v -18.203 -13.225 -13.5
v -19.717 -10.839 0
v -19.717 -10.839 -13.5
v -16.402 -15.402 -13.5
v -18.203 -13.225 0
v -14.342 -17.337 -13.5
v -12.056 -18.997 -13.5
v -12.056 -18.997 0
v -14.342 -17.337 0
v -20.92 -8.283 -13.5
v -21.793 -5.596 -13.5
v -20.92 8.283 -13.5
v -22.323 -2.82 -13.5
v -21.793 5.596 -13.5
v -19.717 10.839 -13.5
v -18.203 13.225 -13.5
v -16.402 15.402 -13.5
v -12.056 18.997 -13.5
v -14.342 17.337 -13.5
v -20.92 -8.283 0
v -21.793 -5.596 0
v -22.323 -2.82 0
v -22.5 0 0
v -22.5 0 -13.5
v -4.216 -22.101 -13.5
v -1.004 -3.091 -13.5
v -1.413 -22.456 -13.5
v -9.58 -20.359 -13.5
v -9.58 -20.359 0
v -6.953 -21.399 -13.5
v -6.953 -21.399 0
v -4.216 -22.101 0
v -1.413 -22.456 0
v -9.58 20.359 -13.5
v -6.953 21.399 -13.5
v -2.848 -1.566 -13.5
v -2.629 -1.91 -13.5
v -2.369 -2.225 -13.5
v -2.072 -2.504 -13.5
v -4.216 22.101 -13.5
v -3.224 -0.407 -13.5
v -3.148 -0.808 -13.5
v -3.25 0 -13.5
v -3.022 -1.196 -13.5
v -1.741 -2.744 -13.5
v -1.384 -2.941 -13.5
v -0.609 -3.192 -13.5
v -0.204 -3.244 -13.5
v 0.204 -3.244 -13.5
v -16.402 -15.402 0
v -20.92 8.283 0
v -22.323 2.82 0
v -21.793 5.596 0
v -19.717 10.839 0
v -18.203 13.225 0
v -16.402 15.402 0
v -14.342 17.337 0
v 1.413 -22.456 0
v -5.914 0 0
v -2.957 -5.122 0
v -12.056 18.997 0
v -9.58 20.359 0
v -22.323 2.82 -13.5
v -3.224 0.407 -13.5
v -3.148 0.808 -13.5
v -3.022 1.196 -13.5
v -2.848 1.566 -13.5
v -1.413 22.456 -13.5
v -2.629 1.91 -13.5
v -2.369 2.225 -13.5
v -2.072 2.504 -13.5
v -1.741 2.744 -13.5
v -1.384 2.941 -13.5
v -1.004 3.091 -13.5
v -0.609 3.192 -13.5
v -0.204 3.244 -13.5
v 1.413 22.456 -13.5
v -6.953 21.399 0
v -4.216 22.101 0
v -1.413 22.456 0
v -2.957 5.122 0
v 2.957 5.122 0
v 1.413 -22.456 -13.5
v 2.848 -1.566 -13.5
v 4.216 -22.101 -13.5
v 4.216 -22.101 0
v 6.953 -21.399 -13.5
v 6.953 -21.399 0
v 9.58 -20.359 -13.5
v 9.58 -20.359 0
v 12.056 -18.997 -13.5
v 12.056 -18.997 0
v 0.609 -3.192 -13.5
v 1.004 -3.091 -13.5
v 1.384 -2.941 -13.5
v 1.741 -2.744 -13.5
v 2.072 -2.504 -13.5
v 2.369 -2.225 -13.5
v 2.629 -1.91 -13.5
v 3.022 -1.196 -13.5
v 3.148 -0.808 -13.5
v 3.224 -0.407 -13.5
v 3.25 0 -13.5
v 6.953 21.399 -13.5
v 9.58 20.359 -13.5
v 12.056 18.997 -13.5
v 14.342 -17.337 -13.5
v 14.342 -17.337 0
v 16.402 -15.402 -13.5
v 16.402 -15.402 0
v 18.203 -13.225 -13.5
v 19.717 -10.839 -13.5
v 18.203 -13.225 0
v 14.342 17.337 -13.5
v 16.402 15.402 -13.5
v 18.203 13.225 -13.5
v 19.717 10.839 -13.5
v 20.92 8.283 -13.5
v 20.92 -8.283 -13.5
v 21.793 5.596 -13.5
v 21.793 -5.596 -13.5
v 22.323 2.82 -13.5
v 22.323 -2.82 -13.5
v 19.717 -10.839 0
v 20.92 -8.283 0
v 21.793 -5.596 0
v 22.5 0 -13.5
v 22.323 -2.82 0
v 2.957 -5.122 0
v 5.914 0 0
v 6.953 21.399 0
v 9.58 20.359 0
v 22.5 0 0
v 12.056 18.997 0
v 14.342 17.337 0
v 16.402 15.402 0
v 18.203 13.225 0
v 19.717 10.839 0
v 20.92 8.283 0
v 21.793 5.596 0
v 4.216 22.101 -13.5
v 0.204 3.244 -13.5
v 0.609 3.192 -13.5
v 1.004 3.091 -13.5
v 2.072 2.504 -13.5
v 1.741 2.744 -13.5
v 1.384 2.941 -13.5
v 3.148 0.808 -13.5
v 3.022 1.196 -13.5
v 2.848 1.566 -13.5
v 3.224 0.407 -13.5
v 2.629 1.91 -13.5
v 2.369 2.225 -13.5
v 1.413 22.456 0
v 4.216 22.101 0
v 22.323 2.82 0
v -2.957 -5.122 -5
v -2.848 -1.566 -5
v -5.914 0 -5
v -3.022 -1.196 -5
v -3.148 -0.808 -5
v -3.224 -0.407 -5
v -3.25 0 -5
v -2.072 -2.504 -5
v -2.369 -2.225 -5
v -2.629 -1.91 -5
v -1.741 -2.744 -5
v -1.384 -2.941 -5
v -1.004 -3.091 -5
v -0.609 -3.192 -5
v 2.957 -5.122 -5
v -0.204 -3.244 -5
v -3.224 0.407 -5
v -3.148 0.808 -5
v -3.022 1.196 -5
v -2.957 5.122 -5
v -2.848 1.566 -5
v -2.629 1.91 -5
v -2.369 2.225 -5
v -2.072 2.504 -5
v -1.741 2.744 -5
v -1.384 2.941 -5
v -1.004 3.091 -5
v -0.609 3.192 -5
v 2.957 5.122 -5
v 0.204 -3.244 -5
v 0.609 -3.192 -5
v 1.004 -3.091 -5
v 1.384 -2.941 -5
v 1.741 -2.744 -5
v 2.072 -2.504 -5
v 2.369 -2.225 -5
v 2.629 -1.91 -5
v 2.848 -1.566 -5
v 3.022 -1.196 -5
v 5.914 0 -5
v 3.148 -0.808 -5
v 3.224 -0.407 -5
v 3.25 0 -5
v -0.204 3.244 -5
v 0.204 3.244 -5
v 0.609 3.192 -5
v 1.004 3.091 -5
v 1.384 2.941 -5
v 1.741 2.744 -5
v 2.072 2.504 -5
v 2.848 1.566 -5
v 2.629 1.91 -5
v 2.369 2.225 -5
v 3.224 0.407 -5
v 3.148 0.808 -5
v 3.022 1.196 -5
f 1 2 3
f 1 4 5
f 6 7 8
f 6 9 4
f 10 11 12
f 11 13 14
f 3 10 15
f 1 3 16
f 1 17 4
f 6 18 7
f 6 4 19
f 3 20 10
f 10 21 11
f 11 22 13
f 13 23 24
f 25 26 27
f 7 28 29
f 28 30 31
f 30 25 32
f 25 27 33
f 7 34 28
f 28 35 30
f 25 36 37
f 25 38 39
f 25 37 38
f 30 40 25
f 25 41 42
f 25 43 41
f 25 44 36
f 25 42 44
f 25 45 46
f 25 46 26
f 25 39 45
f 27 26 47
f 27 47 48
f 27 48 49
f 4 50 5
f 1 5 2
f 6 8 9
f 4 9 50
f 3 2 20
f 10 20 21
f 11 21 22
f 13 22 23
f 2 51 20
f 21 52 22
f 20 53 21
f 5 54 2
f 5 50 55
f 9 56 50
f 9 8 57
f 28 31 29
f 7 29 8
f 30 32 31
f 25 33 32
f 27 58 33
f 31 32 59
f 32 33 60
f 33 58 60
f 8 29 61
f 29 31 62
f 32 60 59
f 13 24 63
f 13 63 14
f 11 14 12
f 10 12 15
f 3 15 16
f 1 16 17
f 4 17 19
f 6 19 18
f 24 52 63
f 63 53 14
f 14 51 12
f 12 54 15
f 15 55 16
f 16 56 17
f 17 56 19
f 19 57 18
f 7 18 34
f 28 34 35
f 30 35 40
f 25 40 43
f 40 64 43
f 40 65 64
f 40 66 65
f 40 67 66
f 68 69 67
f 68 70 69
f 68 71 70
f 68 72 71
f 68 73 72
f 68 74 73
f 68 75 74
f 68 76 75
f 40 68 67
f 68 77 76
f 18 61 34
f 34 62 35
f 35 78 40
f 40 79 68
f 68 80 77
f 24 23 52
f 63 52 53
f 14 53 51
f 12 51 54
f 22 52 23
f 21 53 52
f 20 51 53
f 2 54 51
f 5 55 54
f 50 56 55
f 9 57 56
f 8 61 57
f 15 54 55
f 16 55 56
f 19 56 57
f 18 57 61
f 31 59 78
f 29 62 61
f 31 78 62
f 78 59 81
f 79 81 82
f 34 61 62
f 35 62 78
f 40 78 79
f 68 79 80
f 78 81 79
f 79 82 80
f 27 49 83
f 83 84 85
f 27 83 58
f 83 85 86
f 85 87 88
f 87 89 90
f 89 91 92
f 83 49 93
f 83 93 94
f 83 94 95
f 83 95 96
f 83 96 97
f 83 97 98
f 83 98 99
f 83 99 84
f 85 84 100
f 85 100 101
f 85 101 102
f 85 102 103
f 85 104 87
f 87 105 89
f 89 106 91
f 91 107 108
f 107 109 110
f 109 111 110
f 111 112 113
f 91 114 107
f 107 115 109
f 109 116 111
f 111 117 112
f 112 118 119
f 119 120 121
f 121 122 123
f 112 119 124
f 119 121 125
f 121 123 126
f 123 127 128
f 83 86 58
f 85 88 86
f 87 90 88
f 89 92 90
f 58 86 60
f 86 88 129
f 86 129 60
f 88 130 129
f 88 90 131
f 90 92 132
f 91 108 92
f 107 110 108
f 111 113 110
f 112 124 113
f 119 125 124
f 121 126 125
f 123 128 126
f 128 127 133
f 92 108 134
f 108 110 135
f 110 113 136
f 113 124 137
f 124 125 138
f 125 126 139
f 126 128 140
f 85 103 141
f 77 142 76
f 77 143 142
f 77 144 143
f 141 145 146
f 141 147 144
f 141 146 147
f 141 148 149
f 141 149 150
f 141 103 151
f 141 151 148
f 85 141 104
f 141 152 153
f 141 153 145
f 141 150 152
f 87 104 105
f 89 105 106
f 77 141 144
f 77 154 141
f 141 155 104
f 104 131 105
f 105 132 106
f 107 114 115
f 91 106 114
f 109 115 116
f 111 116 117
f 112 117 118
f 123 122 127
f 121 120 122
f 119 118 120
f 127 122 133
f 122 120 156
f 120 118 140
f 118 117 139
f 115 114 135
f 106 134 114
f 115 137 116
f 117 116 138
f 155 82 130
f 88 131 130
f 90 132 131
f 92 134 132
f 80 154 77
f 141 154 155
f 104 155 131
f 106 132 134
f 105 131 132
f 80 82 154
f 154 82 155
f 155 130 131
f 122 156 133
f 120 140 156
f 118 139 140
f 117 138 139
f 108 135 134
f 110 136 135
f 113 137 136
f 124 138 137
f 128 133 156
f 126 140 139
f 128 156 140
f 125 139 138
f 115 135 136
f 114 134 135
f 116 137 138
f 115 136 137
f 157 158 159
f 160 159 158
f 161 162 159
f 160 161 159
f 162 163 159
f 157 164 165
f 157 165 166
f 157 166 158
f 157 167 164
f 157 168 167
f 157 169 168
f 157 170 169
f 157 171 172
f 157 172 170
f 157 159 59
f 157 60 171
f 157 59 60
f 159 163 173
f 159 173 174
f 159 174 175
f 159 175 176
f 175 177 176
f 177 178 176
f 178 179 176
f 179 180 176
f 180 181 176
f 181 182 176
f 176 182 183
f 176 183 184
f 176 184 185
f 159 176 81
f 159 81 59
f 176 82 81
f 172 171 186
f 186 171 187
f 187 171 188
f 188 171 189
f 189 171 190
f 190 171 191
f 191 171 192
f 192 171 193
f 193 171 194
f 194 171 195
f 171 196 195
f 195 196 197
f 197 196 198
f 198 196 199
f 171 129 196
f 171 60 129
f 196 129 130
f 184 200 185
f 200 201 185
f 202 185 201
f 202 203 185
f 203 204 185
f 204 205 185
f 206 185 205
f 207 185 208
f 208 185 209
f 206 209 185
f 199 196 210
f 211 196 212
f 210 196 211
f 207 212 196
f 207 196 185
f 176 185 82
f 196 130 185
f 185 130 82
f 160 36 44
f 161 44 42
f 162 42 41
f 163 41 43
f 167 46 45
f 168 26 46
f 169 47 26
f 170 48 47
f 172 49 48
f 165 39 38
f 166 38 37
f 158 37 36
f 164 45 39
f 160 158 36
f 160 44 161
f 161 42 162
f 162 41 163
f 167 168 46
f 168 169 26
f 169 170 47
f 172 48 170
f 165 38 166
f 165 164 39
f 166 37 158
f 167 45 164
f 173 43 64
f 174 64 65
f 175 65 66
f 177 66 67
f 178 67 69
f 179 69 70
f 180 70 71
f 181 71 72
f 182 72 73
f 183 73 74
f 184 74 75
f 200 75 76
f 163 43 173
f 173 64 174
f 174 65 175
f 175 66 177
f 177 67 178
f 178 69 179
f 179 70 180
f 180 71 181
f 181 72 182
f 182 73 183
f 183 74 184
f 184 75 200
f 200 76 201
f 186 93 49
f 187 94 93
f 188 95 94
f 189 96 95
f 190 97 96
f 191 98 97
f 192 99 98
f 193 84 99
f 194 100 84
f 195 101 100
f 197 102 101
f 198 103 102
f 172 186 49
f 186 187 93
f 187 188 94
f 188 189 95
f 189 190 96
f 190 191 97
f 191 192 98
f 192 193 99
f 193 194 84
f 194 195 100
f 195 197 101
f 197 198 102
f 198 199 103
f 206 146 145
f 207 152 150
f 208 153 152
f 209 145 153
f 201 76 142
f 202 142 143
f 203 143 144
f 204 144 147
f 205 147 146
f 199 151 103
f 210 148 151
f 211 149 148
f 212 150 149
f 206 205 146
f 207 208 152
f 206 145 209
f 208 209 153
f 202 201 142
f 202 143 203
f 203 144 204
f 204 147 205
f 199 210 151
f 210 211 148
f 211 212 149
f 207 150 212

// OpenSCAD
$fn = 50;

difference() {
	union() {
		translate(v = [0, 0, -13.5]) {
			cylinder(h = 13.5, r = 22.5);
		}
	}
	union() {
		translate(v = [0, 0, 0]) {
			rotate(a = [0, 0, 0]) {
				difference() {
					union() {
						translate(v = [0, 0, -5]) {
							linear_extrude(height = 5) {
								polygon(points = [[5.914249999999999, 0.0], [2.957125, 5.1218907443321156], [-2.9571249999999982, 5.1218907443321156], [-5.914249999999999, 7.242867331857232e-16], [-2.9571250000000022, -5.121890744332115], [2.9571249999999956, -5.121890744332118]]);
							}
						}
					}
					union();
				}
			}
		}
		#translate(v = [0, 0, -100.0]) {
			cylinder(h = 200, r = 3.25);
		}
	}
}
